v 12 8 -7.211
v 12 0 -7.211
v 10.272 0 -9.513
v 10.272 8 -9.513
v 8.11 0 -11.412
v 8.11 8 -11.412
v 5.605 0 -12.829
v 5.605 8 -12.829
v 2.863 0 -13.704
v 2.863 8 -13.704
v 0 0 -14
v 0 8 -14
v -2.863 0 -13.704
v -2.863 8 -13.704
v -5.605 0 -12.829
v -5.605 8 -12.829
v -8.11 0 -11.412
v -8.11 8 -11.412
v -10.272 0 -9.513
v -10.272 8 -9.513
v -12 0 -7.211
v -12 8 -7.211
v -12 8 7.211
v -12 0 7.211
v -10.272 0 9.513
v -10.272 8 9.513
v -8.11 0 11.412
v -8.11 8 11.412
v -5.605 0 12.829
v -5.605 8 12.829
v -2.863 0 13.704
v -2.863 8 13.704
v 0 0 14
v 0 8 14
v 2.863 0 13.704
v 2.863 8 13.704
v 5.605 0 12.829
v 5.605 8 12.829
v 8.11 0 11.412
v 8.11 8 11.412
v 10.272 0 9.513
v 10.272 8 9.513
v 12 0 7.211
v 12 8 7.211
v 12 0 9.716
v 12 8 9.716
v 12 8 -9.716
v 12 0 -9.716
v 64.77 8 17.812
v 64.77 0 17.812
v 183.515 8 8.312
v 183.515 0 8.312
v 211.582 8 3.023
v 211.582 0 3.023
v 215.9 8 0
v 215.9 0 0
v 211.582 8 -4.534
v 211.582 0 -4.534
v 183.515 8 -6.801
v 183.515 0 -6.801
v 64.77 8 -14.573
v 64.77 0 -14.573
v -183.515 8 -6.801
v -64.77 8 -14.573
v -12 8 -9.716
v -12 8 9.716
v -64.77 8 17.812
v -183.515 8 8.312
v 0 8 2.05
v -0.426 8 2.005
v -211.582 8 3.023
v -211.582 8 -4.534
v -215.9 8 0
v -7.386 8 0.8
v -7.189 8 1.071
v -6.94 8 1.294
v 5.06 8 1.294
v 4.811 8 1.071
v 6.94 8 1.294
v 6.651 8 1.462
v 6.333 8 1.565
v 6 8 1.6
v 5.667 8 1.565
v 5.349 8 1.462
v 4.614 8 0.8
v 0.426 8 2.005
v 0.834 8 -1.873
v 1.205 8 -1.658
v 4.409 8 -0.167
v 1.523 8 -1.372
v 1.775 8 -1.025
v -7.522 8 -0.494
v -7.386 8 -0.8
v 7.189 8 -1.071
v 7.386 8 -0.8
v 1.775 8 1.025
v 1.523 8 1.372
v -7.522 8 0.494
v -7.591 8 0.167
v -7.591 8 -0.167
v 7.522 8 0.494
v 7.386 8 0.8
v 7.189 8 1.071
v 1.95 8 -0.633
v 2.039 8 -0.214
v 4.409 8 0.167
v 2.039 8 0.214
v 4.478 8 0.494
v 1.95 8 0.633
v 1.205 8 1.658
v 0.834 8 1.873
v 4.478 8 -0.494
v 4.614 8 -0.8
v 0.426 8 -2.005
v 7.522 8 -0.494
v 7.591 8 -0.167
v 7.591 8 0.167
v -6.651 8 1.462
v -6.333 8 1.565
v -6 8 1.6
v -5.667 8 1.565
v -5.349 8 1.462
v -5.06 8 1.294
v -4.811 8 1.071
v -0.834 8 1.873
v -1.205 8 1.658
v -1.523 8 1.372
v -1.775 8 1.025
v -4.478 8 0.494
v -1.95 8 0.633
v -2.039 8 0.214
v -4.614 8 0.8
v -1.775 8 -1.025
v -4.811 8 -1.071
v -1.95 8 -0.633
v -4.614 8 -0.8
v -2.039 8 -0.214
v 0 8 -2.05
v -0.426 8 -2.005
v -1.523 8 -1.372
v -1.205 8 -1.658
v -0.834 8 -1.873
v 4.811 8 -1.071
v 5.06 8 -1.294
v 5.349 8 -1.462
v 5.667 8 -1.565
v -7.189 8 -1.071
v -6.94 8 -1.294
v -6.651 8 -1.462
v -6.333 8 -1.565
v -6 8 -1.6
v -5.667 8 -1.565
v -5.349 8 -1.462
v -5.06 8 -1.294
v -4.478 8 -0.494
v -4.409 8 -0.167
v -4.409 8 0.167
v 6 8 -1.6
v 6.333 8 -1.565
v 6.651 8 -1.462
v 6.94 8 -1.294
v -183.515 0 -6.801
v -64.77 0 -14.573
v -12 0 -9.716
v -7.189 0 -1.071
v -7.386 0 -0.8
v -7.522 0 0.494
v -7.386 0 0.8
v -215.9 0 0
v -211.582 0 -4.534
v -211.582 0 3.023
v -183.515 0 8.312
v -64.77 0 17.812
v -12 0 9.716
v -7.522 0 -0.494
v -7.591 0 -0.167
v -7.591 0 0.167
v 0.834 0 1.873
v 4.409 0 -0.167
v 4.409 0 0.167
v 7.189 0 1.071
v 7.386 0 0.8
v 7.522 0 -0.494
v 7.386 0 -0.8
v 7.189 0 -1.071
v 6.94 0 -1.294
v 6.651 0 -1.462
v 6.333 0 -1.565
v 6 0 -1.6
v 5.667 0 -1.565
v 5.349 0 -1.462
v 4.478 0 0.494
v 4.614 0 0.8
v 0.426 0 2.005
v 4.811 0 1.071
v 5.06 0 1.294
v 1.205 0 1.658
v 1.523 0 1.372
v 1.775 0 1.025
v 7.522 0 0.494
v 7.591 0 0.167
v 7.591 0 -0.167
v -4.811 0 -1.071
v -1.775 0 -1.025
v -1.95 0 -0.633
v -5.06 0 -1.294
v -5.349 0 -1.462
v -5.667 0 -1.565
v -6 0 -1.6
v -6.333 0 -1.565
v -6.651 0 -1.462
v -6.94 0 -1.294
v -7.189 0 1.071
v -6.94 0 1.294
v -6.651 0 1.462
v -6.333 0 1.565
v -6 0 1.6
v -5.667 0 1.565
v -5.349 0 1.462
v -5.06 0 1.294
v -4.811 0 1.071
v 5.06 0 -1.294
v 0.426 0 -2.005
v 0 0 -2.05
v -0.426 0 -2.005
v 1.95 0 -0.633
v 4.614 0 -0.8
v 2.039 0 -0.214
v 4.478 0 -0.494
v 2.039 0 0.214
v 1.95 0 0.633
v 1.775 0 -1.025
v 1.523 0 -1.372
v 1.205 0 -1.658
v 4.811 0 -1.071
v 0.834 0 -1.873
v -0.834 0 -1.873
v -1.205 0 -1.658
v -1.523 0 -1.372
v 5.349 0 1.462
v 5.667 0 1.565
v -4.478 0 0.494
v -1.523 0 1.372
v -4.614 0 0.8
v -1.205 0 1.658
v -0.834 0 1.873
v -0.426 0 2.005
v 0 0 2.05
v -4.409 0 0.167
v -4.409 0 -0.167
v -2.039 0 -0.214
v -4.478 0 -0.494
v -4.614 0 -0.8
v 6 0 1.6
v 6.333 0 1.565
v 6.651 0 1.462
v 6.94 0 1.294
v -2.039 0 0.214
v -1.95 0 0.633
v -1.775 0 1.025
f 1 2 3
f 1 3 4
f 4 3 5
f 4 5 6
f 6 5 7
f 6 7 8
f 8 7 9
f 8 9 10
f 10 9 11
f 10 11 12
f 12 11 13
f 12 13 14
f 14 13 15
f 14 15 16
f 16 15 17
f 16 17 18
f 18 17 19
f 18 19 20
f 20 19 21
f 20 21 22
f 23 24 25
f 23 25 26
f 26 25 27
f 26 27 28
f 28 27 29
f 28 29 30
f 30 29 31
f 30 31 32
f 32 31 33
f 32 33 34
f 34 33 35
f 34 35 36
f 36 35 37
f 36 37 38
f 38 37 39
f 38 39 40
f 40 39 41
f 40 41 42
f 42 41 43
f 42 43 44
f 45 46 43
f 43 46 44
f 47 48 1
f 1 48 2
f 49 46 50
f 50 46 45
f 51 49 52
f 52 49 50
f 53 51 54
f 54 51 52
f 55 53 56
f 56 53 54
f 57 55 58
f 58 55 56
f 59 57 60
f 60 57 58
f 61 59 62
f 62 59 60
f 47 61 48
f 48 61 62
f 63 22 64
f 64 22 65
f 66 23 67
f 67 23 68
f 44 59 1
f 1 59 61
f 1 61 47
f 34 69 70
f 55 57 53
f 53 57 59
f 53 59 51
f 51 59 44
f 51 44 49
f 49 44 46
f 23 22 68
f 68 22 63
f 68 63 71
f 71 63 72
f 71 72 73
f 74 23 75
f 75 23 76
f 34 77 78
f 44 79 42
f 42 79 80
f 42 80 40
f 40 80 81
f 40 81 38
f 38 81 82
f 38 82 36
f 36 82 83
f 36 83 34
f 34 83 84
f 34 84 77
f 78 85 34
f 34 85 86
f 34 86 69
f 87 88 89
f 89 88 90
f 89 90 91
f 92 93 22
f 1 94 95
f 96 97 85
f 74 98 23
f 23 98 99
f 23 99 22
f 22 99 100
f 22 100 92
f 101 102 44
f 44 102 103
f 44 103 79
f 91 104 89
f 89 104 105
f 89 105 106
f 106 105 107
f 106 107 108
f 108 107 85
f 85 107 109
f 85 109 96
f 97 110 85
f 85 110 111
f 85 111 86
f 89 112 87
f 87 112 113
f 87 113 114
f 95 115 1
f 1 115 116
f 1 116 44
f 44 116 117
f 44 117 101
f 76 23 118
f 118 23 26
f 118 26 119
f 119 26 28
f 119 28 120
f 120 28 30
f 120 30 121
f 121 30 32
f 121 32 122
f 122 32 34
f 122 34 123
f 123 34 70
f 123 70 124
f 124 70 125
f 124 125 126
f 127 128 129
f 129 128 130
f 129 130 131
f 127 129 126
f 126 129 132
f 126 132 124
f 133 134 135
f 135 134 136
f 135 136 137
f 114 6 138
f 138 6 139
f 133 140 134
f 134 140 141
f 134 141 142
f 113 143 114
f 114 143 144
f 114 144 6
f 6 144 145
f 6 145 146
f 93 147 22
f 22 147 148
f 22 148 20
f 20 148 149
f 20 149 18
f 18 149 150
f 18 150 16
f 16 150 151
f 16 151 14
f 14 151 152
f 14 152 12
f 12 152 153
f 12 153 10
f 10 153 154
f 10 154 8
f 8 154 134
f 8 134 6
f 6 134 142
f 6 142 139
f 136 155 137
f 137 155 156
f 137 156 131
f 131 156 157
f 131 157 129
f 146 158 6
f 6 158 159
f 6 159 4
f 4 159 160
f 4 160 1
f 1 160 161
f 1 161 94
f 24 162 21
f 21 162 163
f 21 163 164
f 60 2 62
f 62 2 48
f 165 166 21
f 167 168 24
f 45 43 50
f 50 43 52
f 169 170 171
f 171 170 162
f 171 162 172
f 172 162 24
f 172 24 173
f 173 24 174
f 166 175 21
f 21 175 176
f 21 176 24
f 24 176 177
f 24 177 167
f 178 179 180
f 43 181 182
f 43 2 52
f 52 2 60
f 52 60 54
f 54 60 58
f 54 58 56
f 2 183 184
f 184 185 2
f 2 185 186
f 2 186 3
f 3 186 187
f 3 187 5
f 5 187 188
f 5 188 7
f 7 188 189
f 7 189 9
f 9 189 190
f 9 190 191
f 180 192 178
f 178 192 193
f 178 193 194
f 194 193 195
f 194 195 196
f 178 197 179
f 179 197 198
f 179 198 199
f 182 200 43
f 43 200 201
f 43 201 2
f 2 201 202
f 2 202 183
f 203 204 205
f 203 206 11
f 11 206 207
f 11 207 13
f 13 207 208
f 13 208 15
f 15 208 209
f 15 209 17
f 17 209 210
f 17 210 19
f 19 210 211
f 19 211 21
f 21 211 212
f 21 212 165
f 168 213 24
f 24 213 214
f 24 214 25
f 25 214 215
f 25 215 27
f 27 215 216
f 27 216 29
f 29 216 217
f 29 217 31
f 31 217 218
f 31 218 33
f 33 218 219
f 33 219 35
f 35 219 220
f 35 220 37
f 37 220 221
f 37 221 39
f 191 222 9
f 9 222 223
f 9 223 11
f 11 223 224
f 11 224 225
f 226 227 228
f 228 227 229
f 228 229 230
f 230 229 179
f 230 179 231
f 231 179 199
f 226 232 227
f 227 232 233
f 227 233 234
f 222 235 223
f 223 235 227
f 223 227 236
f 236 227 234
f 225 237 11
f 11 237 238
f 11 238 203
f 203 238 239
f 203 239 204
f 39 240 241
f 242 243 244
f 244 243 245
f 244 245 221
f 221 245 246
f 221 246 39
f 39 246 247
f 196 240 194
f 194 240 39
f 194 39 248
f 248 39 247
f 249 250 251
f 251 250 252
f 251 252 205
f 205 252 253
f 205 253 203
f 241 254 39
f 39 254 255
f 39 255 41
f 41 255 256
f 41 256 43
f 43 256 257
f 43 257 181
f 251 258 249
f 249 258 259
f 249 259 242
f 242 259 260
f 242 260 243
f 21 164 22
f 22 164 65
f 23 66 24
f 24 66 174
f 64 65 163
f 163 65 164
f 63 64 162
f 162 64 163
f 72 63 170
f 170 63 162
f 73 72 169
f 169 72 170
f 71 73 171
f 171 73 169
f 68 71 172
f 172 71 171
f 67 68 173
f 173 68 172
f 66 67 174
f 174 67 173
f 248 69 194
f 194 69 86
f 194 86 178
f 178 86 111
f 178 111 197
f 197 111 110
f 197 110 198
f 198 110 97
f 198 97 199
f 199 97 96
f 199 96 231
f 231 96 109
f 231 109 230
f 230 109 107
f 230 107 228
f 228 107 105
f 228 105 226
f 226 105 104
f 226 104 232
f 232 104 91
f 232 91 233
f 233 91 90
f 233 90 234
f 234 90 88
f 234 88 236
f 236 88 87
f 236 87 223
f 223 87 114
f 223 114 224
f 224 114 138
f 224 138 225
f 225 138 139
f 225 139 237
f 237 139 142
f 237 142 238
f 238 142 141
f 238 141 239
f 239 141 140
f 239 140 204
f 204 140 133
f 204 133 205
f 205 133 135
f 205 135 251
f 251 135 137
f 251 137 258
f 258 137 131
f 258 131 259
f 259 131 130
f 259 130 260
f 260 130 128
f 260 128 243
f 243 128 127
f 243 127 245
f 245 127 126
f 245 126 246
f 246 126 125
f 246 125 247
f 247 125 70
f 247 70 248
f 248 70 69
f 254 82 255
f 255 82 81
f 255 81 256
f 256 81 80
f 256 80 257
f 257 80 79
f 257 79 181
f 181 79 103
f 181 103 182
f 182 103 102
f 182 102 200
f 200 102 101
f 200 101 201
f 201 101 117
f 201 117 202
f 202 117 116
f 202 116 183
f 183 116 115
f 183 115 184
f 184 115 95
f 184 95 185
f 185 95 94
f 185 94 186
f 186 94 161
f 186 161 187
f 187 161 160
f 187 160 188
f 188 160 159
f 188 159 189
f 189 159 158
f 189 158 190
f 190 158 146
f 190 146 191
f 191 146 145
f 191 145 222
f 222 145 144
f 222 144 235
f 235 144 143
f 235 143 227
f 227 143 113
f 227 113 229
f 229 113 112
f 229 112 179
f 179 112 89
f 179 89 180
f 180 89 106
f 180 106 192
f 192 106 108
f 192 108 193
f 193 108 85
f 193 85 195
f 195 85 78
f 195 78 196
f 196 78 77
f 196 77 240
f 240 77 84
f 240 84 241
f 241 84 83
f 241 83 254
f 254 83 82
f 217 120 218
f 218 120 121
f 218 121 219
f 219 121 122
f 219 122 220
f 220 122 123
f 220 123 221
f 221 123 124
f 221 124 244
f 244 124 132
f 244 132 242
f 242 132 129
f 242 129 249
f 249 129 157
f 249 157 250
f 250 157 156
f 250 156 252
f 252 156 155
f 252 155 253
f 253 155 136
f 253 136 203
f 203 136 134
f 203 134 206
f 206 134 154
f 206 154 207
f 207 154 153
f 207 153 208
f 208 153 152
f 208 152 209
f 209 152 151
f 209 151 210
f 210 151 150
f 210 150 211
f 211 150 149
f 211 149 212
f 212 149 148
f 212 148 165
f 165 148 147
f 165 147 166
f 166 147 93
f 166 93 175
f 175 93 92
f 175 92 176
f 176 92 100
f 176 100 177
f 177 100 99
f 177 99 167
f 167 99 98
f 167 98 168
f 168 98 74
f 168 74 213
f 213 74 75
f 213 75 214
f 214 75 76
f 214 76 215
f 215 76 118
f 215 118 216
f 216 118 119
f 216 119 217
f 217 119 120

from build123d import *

# Parameters (mm, degrees)
BOSS_EXTRUDE1_DEPTH     = 8
BOSS_EXTRUDE1_2_DEPTH   = 8
SKETCH2_R               = 14
BOSS_EXTRUDE2_DEPTH     = 8
CUT_EXTRUDE1_DEPTH      = 217.781153328
CUT_EXTRUDE1_DEPTH_BACK = 217.781153328
SKETCH3_R               = 2.05
SKETCH3_R_2             = 1.6


with BuildPart() as part:
    # Sketch1 → Boss-Extrude1 (new body)
    with BuildSketch(Plane(origin=(0, 0, 0), x_dir=(1, 0, 0), z_dir=(0, 1, 0))):
        Polygon((12, -9.7155), (64.77, -17.81175), (183.515, -8.31215), (211.582, -3.0226), (215.9, 0), (211.582, 4.5339), (183.515, 6.80085), (64.77, 14.57325), (12, 9.7155), align=None)
    extrude(amount=BOSS_EXTRUDE1_DEPTH)



with BuildPart() as body_2:
    # Sketch1 → Boss-Extrude1 2 (new body)
    with BuildSketch(Plane(origin=(0, 0, 0), x_dir=(1, 0, 0), z_dir=(0, 1, 0))):
        Polygon((-12, -9.7155), (-64.77, -17.81175), (-183.515, -8.31215), (-211.582, -3.0226), (-215.9, 0), (-211.582, 4.5339), (-183.515, 6.80085), (-64.77, 14.57325), (-12, 9.7155), align=None)
    extrude(amount=BOSS_EXTRUDE1_2_DEPTH)


with BuildPart() as part_1:
    add(part.part)

    add(body_2.part)  # Boss-Extrude2 merges body 2
    # Sketch2 → Boss-Extrude2 (add)
    with BuildSketch(Plane(origin=(0, 0, 0), x_dir=(1, 0, 0), z_dir=(0, 1, 0))):
        Circle(SKETCH2_R)
    extrude(amount=BOSS_EXTRUDE2_DEPTH)

    # Sketch3 → Cut-Extrude1 (cut, two sides: drawn at the far end of the back side and taken through both)
    with BuildSketch(Plane(origin=(0, 0, 0), x_dir=(1, 0, 0), z_dir=(0, 1, 0)).offset(-CUT_EXTRUDE1_DEPTH_BACK)):
        with Locations(Location((0, 0, 0), (0, 0, 270))):
            Circle(SKETCH3_R)
        with Locations(Location((6, 0, 0), (0, 0, 270))):
            Circle(SKETCH3_R_2)
        with Locations(Location((-6, 0, 0), (0, 0, 270))):
            Circle(SKETCH3_R_2)
    extrude(amount=CUT_EXTRUDE1_DEPTH + CUT_EXTRUDE1_DEPTH_BACK, mode=Mode.SUBTRACT)


solid = part_1.part
